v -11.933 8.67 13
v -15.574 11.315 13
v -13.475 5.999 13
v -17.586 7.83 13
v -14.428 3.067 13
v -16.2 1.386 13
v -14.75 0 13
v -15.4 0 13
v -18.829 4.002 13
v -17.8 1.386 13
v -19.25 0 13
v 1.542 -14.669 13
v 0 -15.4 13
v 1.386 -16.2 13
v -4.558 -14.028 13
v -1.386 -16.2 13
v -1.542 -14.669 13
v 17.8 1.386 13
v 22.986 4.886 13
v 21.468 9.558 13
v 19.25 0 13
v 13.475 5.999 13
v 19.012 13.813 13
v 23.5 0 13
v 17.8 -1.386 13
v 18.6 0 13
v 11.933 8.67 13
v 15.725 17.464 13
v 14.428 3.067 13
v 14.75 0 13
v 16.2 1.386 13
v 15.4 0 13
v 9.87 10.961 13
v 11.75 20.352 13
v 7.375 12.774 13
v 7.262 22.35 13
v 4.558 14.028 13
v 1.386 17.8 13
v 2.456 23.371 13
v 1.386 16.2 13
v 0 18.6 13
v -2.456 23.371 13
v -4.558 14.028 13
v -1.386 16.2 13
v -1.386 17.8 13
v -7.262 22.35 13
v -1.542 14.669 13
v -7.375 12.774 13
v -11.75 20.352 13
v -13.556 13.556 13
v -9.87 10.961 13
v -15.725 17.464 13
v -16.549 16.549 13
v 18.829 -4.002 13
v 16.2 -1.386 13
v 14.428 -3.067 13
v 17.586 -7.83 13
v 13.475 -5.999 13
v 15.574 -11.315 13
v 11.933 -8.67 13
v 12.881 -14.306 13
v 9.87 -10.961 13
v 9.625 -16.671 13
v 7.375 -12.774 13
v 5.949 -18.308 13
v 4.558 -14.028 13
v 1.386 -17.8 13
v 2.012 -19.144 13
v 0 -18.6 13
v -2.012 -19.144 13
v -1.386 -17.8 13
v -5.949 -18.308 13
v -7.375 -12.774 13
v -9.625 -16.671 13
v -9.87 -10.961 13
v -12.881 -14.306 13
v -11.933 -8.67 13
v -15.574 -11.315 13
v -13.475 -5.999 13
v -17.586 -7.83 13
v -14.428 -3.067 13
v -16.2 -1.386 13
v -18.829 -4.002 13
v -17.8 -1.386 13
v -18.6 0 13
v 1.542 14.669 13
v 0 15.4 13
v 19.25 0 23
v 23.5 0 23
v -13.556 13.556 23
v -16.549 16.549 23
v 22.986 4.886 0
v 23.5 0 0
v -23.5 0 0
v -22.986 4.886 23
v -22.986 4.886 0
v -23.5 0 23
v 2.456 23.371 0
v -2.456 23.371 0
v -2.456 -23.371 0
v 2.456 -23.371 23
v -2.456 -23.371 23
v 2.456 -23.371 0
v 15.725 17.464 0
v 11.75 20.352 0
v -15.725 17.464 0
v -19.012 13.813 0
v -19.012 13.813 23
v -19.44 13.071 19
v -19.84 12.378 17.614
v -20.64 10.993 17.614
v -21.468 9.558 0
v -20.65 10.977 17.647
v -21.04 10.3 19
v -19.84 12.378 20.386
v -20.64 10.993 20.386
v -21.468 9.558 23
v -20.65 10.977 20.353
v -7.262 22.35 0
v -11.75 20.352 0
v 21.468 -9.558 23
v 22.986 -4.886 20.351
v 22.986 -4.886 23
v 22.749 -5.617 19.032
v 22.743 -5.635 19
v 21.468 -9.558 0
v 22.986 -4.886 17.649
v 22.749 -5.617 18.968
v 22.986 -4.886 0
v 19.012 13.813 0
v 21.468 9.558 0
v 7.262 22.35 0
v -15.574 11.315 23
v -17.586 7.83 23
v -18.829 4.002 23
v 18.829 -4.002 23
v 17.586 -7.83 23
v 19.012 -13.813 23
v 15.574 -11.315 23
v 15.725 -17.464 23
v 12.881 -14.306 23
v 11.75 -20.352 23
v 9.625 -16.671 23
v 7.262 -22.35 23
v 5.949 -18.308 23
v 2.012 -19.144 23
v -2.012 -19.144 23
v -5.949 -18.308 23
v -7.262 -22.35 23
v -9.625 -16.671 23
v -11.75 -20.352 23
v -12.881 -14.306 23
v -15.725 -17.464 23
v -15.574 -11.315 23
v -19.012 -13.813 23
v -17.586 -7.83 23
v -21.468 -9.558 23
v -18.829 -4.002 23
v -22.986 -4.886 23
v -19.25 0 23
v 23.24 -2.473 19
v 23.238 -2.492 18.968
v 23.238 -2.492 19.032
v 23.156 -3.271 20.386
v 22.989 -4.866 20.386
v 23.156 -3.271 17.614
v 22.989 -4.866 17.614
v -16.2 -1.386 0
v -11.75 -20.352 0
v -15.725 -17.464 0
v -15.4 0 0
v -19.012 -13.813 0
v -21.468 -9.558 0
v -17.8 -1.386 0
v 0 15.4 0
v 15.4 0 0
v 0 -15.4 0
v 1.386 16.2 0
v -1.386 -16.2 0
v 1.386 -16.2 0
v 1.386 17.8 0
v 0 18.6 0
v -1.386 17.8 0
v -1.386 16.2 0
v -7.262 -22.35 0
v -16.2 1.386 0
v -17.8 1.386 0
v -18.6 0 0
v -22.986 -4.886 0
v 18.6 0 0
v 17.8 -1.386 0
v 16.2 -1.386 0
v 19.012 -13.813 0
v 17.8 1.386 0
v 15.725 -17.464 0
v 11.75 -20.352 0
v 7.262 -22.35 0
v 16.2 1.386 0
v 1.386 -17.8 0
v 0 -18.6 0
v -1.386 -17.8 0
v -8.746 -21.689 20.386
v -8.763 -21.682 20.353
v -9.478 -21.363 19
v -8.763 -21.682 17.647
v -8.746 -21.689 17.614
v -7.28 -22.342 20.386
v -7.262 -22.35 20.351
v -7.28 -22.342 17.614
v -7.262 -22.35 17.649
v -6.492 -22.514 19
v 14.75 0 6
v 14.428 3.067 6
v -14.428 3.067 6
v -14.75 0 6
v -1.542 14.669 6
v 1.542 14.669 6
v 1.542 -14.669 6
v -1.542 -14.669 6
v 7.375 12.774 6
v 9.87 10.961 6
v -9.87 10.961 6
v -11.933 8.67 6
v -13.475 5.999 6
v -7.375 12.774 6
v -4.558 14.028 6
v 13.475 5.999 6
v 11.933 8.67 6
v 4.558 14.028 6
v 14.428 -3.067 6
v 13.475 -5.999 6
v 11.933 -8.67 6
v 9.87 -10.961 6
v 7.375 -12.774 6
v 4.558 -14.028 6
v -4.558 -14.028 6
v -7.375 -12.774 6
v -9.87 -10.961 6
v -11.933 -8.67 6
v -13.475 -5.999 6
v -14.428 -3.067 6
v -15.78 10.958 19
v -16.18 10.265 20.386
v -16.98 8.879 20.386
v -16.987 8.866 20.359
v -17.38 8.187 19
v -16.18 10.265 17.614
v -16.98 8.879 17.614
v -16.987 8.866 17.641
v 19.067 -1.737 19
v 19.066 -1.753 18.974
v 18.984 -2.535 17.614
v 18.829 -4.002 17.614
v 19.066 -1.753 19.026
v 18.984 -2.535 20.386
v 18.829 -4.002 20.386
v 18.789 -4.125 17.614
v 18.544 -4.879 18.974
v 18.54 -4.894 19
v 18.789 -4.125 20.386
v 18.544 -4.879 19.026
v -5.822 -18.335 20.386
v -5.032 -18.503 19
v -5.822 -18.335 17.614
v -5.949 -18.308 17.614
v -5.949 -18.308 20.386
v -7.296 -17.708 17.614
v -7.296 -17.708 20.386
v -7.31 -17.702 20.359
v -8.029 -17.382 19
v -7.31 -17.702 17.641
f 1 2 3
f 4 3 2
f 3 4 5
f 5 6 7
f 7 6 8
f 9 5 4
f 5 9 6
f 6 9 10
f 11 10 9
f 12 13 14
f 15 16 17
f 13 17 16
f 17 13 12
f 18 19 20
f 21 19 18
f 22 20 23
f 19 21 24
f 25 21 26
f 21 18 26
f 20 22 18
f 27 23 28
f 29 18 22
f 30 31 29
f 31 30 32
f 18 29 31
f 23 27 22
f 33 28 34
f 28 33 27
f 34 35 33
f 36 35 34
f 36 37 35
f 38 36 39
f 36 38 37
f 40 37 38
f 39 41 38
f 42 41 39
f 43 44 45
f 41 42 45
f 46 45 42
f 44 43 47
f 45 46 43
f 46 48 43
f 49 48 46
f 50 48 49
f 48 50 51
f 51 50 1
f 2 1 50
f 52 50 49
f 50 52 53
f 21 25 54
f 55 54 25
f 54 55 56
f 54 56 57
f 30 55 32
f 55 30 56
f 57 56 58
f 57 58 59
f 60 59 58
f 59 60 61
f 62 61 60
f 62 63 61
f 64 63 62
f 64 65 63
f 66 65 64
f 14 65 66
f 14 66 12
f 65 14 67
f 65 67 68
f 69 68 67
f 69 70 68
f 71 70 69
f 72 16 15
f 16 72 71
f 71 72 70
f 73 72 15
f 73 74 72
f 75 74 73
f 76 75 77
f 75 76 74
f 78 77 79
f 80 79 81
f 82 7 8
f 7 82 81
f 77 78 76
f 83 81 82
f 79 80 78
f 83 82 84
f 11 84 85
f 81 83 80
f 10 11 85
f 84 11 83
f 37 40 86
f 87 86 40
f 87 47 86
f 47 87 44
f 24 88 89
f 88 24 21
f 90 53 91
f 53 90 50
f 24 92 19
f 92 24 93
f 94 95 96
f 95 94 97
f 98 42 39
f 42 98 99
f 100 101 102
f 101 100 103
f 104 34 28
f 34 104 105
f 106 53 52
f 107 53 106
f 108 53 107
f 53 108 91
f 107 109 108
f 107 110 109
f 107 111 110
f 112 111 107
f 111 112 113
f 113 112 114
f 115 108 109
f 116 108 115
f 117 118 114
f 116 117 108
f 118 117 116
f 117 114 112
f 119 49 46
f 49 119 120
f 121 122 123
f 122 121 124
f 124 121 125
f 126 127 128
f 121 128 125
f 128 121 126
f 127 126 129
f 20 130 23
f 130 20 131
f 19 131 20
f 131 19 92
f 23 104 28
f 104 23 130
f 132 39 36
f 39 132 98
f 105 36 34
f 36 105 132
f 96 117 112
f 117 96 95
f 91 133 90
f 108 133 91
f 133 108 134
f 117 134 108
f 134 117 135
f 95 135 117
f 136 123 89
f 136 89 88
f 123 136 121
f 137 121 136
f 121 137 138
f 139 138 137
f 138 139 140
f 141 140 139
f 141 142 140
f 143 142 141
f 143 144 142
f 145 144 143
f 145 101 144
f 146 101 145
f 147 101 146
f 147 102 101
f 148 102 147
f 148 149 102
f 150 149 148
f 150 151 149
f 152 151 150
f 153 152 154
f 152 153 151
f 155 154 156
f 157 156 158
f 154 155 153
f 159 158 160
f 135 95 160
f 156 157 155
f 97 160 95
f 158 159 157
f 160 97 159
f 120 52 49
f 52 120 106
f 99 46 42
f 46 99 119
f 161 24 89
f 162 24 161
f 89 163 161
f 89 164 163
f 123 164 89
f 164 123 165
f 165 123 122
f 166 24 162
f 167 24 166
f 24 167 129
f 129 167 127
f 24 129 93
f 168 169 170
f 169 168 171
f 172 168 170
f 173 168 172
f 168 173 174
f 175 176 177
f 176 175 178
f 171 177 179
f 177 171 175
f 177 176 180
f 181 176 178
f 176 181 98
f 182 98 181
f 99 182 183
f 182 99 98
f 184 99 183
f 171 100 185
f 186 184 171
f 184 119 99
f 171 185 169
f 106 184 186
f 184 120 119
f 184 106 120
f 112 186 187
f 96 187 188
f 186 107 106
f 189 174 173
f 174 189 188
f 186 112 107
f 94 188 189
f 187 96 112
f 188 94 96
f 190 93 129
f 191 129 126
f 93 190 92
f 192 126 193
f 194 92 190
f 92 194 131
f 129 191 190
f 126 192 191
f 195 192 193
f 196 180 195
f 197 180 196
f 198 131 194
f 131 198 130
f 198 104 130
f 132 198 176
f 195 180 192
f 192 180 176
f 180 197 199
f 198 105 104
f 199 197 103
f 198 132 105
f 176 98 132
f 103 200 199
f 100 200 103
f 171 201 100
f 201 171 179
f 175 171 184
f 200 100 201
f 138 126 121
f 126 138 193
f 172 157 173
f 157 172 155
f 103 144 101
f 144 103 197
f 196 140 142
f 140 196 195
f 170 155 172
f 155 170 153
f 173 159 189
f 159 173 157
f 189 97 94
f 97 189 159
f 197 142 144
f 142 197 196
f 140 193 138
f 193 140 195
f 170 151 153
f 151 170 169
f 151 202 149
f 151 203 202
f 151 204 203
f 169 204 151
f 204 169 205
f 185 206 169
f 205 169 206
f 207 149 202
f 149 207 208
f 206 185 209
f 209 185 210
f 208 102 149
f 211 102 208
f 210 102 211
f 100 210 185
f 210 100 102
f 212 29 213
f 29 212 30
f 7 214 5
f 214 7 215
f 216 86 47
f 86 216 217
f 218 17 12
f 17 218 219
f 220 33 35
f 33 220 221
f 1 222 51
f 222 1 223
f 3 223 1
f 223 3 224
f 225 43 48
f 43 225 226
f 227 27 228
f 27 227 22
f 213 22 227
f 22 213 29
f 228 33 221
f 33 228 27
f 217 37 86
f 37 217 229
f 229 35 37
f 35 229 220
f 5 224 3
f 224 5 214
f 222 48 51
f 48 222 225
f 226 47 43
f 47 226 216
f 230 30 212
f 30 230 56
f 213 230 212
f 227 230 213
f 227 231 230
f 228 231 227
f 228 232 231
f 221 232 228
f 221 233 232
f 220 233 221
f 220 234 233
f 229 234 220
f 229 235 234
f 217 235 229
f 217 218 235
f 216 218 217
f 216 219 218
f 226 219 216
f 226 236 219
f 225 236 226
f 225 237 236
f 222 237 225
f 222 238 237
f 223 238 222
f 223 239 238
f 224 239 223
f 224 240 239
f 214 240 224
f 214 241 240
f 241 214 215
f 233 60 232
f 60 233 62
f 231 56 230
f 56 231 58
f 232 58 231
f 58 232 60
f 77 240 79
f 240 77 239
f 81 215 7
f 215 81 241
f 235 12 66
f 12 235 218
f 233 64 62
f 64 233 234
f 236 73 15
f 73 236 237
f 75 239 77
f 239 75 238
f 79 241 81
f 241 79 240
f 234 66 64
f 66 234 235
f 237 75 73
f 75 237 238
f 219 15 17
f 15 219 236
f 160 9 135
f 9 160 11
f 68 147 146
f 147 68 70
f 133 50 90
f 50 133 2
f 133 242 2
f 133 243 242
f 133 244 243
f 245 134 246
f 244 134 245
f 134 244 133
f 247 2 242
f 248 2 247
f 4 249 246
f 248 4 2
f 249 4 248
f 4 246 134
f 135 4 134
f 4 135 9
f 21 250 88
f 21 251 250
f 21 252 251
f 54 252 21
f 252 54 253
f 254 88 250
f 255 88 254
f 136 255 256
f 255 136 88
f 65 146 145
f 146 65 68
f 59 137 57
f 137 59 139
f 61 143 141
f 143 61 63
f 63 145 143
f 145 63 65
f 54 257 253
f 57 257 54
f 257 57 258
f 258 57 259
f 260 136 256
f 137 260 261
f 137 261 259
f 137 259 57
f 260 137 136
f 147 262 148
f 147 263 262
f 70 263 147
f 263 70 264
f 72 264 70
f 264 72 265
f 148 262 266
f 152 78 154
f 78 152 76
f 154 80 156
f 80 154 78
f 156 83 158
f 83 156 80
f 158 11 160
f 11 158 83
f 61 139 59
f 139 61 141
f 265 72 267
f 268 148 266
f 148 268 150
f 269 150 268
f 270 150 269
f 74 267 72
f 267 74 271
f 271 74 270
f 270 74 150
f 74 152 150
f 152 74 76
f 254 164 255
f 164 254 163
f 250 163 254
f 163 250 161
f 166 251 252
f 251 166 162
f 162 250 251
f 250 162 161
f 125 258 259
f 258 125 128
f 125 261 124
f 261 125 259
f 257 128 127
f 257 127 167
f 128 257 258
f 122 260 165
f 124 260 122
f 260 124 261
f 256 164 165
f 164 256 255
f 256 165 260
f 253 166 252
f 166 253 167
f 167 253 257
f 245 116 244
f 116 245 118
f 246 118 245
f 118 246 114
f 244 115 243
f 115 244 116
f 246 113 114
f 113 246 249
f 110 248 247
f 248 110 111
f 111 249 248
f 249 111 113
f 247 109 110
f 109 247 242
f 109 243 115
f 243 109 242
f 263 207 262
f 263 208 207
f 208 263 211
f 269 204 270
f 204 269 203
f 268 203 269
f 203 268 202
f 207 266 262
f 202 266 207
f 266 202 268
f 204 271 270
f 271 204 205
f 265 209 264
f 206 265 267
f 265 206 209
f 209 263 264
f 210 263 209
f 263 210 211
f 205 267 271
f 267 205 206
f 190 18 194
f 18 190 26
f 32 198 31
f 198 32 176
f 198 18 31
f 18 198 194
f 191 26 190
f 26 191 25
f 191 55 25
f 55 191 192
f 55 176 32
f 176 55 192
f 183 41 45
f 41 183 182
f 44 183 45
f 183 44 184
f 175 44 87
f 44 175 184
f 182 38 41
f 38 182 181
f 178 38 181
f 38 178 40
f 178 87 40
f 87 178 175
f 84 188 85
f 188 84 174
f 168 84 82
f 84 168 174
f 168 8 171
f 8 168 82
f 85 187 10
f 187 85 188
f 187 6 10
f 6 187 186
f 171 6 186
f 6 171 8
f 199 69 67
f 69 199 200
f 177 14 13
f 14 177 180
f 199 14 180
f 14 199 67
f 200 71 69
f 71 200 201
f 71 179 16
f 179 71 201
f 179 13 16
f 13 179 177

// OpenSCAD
bignum = 999;
difference(){
    cylinder(h=23, r=(47/2));
    translate([0,0,6]) cylinder (h=bignum, r=29.5/2);
    translate([0,0,13]) cylinder (h=bignum, r=38.5/2);
    translate([0,0,13]) union(){
        cube([bignum, bignum, bignum]);
        rotate([0,0,45]) cube([bignum, bignum, bignum]);       
    }
    translate([0,0,19])rotate([90,0,80]) cylinder(r=1.6, h=bignum);
    translate([0,0,19])rotate([90,0,240]) cylinder(r=1.6, h=bignum);
    translate([0,0,19])rotate([90,0,-20]) cylinder(r=1.6, h=bignum);
    rotate([0,0,0]) translate([17,0,0]) cylinder(r=1.6, h=bignum);
    rotate([0,0,90]) translate([17,0,0]) cylinder(r=1.6, h=bignum);
    rotate([0,0,180]) translate([17,0,0]) cylinder(r=1.6, h=bignum);
    rotate([0,0,270]) translate([17,0,0]) cylinder(r=1.6, h=bignum);
    
}
